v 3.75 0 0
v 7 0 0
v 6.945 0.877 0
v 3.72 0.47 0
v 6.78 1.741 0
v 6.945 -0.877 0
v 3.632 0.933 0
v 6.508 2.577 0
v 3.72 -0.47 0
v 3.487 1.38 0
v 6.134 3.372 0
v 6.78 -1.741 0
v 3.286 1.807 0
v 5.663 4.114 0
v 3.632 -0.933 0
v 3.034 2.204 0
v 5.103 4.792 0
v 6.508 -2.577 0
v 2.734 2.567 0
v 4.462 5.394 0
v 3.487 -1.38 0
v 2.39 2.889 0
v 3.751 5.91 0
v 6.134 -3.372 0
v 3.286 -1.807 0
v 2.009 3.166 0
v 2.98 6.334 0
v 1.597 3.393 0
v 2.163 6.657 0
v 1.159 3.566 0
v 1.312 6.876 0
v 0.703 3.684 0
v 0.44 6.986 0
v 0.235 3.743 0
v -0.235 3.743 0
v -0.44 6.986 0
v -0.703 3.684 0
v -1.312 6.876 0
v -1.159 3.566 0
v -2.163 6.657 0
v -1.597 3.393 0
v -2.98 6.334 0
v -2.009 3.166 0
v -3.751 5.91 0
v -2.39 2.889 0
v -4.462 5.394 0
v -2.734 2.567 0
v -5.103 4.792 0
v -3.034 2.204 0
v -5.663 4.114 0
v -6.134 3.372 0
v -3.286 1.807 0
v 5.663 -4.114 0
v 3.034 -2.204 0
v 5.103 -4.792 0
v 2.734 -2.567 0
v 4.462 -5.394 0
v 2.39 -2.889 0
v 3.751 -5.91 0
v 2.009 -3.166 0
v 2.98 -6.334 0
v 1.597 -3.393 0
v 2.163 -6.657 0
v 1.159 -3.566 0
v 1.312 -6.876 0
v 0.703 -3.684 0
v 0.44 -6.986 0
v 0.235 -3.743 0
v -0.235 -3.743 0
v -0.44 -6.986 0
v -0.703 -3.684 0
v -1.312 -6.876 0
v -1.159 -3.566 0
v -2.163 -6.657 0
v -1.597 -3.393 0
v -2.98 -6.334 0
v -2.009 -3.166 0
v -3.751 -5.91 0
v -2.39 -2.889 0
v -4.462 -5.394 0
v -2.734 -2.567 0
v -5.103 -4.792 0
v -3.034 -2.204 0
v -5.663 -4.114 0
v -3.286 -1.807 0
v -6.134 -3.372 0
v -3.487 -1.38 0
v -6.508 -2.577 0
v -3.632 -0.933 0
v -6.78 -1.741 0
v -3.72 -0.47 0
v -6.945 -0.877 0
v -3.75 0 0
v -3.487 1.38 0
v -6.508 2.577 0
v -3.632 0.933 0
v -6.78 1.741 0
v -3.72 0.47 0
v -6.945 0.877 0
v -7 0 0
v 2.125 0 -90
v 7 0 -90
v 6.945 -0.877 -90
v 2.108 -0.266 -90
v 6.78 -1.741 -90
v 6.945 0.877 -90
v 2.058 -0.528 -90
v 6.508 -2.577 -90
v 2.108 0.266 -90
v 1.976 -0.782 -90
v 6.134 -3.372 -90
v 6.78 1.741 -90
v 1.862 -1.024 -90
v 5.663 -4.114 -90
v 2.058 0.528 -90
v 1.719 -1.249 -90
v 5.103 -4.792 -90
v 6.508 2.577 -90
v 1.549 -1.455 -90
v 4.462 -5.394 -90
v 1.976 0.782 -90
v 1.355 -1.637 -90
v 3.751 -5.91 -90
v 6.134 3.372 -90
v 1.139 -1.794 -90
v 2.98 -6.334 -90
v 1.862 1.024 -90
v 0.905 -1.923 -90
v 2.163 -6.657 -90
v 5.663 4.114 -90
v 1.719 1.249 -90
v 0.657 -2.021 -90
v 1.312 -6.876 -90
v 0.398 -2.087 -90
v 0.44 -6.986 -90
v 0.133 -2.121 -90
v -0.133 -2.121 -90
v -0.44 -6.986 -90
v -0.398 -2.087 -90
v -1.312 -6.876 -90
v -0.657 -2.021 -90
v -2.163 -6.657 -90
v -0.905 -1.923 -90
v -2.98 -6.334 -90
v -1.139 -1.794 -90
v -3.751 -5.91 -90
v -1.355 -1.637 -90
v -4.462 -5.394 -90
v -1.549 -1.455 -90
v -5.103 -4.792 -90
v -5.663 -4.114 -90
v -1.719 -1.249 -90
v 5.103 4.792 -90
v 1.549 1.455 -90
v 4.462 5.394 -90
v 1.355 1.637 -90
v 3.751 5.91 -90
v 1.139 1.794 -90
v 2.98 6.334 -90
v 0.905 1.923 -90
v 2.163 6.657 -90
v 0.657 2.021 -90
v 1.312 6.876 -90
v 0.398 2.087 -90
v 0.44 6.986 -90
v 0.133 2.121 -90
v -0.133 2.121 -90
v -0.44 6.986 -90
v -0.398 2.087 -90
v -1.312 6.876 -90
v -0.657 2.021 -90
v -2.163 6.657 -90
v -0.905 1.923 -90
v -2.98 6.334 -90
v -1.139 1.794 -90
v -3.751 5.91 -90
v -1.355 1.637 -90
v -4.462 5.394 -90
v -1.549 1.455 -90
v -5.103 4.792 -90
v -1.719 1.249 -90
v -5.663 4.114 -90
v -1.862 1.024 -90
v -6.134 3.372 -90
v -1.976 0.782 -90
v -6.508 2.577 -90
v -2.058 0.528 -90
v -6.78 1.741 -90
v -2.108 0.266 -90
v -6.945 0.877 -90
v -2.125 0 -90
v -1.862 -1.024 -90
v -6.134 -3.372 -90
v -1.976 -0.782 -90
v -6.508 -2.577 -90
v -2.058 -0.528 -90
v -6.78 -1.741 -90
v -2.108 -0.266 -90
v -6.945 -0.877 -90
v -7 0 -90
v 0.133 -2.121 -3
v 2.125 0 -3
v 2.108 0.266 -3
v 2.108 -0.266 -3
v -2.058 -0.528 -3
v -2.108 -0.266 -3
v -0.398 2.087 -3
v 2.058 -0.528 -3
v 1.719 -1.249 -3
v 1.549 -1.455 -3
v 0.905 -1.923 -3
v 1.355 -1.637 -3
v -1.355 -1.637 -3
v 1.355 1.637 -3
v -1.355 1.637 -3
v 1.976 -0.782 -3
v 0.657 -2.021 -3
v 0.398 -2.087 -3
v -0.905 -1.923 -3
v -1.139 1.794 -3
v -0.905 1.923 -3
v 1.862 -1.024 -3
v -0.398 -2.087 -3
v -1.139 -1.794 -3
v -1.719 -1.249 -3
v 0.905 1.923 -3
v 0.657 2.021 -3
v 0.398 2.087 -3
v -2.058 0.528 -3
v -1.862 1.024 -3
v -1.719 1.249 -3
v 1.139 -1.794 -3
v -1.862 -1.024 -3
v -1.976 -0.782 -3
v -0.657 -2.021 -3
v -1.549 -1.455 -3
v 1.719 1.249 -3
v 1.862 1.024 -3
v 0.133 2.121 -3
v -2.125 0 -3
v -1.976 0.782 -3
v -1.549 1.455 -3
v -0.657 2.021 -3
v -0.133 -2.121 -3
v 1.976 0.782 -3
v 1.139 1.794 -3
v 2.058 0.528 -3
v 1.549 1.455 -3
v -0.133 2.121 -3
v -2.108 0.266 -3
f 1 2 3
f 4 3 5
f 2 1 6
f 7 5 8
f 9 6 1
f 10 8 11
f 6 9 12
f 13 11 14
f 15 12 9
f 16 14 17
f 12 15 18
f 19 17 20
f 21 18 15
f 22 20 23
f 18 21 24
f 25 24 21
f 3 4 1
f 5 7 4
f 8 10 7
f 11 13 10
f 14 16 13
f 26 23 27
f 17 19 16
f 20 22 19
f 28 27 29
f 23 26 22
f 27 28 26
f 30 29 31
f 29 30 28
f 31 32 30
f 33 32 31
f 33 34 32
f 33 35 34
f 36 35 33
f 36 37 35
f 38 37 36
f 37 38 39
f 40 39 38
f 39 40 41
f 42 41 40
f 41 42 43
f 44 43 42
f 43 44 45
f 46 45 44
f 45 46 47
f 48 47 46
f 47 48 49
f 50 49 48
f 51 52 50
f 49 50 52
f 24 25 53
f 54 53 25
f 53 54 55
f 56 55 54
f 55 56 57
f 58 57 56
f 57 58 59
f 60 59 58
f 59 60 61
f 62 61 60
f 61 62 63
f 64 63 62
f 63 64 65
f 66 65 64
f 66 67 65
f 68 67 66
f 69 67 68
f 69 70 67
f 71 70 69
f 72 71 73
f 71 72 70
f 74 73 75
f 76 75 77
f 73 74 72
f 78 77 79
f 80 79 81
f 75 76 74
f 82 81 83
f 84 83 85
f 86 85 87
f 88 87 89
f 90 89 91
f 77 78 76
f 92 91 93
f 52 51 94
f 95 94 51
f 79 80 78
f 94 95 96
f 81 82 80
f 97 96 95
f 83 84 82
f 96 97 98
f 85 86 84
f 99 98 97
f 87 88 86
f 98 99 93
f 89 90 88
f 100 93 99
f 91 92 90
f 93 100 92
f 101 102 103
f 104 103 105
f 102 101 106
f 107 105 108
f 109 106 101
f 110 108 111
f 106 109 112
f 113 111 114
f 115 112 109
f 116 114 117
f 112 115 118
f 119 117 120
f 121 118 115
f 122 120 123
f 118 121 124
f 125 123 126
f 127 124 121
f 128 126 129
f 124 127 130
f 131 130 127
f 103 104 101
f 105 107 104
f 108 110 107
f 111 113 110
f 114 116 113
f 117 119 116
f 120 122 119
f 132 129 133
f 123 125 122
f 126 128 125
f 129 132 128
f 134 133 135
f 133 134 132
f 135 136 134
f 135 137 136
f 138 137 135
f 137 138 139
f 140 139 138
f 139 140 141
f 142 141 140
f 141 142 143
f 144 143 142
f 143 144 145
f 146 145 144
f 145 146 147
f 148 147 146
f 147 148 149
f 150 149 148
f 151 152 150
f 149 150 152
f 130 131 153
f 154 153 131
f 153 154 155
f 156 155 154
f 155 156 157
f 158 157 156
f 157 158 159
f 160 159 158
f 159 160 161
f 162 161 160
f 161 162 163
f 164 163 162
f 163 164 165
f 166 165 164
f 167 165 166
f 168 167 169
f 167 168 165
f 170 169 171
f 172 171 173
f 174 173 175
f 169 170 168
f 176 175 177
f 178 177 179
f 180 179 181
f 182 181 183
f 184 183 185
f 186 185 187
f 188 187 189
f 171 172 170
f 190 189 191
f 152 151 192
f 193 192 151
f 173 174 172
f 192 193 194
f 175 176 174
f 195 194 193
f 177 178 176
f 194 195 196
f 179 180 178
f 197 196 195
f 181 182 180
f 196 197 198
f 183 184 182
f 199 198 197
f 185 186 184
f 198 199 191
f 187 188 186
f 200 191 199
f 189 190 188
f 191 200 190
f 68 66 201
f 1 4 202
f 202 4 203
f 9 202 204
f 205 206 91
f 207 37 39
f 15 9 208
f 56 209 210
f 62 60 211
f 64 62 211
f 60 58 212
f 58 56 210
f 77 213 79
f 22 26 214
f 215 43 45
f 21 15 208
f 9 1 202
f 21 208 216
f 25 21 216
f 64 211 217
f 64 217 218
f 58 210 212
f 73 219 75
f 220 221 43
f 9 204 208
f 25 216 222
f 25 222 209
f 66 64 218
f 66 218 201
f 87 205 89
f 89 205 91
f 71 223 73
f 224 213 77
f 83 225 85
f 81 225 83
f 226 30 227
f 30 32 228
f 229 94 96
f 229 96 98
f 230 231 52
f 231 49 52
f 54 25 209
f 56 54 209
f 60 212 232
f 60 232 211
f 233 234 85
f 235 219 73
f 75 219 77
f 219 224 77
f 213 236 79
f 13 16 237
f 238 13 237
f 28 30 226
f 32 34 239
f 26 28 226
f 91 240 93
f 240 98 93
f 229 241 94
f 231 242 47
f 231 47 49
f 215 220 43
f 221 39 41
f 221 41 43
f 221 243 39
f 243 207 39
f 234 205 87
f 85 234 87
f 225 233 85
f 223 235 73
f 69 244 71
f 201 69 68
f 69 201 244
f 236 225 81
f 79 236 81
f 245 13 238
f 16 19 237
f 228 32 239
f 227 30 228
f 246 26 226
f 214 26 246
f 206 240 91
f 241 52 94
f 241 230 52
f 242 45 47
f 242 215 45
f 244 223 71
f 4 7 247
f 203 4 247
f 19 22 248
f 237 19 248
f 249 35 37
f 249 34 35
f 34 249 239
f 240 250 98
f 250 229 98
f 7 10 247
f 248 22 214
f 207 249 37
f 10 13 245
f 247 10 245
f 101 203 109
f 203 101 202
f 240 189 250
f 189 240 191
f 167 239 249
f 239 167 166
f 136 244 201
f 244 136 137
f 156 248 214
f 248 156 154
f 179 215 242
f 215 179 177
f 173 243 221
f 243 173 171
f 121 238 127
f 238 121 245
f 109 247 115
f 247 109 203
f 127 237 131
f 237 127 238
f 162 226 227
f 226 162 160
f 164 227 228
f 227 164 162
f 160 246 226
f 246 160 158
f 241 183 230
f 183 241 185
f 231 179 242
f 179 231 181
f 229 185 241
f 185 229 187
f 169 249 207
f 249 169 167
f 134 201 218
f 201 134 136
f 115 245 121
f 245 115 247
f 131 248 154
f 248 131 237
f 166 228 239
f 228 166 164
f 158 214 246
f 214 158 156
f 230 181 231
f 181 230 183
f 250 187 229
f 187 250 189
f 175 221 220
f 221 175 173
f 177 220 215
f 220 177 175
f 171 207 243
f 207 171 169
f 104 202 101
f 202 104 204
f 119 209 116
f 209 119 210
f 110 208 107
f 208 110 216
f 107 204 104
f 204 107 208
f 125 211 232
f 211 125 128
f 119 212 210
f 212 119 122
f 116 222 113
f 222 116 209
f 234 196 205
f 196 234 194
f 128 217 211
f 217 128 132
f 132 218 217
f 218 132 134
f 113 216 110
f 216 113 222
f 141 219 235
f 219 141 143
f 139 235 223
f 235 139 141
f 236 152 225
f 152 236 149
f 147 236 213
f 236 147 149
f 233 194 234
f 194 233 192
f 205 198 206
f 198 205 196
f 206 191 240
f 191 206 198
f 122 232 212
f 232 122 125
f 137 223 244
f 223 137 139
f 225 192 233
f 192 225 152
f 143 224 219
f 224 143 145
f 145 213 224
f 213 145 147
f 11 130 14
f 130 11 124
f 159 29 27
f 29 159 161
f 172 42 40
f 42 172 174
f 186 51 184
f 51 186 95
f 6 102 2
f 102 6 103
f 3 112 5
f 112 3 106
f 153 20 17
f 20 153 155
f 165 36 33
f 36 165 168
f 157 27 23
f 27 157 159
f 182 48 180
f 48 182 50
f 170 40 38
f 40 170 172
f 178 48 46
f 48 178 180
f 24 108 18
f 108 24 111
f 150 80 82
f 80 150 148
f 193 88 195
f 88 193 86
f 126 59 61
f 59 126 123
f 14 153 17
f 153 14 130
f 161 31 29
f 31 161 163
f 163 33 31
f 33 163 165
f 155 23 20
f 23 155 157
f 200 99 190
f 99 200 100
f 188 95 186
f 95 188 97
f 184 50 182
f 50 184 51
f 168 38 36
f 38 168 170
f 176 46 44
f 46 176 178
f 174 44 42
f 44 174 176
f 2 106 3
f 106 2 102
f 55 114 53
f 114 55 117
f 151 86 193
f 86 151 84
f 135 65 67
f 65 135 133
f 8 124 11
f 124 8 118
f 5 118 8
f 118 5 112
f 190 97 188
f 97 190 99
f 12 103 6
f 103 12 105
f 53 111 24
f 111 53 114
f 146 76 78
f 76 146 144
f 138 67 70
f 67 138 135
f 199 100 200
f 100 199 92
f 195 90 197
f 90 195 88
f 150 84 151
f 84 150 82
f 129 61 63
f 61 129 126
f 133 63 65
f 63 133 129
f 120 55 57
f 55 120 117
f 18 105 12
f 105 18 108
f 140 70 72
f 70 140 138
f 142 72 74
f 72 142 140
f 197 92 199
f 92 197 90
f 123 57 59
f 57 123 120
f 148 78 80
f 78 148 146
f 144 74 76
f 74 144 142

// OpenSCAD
$fn = 50;


difference() {
	union() {
		translate(v = [0, 0, -90.0000000000]) {
			cylinder(h = 90, r = 7.0000000000);
		}
	}
	union() {
		translate(v = [0, 0, 0]) {
			rotate(a = [0, 0, 0]) {
				difference() {
					union() {
						#translate(v = [0, 0, -90.0000000000]) {
							cylinder(h = 90, r = 2.0000000000);
						}
						#translate(v = [0, 0, -3]) {
							cylinder(h = 3, r1 = 2.1250000000, r2 = 3.7500000000);
						}
						#translate(v = [0, 0, -90.0000000000]) {
							cylinder(h = 90, r = 2.1250000000);
						}
						#translate(v = [0, 0, -90.0000000000]) {
							cylinder(h = 90, r = 2.0000000000);
						}
					}
					union();
				}
			}
		}
	}
}
